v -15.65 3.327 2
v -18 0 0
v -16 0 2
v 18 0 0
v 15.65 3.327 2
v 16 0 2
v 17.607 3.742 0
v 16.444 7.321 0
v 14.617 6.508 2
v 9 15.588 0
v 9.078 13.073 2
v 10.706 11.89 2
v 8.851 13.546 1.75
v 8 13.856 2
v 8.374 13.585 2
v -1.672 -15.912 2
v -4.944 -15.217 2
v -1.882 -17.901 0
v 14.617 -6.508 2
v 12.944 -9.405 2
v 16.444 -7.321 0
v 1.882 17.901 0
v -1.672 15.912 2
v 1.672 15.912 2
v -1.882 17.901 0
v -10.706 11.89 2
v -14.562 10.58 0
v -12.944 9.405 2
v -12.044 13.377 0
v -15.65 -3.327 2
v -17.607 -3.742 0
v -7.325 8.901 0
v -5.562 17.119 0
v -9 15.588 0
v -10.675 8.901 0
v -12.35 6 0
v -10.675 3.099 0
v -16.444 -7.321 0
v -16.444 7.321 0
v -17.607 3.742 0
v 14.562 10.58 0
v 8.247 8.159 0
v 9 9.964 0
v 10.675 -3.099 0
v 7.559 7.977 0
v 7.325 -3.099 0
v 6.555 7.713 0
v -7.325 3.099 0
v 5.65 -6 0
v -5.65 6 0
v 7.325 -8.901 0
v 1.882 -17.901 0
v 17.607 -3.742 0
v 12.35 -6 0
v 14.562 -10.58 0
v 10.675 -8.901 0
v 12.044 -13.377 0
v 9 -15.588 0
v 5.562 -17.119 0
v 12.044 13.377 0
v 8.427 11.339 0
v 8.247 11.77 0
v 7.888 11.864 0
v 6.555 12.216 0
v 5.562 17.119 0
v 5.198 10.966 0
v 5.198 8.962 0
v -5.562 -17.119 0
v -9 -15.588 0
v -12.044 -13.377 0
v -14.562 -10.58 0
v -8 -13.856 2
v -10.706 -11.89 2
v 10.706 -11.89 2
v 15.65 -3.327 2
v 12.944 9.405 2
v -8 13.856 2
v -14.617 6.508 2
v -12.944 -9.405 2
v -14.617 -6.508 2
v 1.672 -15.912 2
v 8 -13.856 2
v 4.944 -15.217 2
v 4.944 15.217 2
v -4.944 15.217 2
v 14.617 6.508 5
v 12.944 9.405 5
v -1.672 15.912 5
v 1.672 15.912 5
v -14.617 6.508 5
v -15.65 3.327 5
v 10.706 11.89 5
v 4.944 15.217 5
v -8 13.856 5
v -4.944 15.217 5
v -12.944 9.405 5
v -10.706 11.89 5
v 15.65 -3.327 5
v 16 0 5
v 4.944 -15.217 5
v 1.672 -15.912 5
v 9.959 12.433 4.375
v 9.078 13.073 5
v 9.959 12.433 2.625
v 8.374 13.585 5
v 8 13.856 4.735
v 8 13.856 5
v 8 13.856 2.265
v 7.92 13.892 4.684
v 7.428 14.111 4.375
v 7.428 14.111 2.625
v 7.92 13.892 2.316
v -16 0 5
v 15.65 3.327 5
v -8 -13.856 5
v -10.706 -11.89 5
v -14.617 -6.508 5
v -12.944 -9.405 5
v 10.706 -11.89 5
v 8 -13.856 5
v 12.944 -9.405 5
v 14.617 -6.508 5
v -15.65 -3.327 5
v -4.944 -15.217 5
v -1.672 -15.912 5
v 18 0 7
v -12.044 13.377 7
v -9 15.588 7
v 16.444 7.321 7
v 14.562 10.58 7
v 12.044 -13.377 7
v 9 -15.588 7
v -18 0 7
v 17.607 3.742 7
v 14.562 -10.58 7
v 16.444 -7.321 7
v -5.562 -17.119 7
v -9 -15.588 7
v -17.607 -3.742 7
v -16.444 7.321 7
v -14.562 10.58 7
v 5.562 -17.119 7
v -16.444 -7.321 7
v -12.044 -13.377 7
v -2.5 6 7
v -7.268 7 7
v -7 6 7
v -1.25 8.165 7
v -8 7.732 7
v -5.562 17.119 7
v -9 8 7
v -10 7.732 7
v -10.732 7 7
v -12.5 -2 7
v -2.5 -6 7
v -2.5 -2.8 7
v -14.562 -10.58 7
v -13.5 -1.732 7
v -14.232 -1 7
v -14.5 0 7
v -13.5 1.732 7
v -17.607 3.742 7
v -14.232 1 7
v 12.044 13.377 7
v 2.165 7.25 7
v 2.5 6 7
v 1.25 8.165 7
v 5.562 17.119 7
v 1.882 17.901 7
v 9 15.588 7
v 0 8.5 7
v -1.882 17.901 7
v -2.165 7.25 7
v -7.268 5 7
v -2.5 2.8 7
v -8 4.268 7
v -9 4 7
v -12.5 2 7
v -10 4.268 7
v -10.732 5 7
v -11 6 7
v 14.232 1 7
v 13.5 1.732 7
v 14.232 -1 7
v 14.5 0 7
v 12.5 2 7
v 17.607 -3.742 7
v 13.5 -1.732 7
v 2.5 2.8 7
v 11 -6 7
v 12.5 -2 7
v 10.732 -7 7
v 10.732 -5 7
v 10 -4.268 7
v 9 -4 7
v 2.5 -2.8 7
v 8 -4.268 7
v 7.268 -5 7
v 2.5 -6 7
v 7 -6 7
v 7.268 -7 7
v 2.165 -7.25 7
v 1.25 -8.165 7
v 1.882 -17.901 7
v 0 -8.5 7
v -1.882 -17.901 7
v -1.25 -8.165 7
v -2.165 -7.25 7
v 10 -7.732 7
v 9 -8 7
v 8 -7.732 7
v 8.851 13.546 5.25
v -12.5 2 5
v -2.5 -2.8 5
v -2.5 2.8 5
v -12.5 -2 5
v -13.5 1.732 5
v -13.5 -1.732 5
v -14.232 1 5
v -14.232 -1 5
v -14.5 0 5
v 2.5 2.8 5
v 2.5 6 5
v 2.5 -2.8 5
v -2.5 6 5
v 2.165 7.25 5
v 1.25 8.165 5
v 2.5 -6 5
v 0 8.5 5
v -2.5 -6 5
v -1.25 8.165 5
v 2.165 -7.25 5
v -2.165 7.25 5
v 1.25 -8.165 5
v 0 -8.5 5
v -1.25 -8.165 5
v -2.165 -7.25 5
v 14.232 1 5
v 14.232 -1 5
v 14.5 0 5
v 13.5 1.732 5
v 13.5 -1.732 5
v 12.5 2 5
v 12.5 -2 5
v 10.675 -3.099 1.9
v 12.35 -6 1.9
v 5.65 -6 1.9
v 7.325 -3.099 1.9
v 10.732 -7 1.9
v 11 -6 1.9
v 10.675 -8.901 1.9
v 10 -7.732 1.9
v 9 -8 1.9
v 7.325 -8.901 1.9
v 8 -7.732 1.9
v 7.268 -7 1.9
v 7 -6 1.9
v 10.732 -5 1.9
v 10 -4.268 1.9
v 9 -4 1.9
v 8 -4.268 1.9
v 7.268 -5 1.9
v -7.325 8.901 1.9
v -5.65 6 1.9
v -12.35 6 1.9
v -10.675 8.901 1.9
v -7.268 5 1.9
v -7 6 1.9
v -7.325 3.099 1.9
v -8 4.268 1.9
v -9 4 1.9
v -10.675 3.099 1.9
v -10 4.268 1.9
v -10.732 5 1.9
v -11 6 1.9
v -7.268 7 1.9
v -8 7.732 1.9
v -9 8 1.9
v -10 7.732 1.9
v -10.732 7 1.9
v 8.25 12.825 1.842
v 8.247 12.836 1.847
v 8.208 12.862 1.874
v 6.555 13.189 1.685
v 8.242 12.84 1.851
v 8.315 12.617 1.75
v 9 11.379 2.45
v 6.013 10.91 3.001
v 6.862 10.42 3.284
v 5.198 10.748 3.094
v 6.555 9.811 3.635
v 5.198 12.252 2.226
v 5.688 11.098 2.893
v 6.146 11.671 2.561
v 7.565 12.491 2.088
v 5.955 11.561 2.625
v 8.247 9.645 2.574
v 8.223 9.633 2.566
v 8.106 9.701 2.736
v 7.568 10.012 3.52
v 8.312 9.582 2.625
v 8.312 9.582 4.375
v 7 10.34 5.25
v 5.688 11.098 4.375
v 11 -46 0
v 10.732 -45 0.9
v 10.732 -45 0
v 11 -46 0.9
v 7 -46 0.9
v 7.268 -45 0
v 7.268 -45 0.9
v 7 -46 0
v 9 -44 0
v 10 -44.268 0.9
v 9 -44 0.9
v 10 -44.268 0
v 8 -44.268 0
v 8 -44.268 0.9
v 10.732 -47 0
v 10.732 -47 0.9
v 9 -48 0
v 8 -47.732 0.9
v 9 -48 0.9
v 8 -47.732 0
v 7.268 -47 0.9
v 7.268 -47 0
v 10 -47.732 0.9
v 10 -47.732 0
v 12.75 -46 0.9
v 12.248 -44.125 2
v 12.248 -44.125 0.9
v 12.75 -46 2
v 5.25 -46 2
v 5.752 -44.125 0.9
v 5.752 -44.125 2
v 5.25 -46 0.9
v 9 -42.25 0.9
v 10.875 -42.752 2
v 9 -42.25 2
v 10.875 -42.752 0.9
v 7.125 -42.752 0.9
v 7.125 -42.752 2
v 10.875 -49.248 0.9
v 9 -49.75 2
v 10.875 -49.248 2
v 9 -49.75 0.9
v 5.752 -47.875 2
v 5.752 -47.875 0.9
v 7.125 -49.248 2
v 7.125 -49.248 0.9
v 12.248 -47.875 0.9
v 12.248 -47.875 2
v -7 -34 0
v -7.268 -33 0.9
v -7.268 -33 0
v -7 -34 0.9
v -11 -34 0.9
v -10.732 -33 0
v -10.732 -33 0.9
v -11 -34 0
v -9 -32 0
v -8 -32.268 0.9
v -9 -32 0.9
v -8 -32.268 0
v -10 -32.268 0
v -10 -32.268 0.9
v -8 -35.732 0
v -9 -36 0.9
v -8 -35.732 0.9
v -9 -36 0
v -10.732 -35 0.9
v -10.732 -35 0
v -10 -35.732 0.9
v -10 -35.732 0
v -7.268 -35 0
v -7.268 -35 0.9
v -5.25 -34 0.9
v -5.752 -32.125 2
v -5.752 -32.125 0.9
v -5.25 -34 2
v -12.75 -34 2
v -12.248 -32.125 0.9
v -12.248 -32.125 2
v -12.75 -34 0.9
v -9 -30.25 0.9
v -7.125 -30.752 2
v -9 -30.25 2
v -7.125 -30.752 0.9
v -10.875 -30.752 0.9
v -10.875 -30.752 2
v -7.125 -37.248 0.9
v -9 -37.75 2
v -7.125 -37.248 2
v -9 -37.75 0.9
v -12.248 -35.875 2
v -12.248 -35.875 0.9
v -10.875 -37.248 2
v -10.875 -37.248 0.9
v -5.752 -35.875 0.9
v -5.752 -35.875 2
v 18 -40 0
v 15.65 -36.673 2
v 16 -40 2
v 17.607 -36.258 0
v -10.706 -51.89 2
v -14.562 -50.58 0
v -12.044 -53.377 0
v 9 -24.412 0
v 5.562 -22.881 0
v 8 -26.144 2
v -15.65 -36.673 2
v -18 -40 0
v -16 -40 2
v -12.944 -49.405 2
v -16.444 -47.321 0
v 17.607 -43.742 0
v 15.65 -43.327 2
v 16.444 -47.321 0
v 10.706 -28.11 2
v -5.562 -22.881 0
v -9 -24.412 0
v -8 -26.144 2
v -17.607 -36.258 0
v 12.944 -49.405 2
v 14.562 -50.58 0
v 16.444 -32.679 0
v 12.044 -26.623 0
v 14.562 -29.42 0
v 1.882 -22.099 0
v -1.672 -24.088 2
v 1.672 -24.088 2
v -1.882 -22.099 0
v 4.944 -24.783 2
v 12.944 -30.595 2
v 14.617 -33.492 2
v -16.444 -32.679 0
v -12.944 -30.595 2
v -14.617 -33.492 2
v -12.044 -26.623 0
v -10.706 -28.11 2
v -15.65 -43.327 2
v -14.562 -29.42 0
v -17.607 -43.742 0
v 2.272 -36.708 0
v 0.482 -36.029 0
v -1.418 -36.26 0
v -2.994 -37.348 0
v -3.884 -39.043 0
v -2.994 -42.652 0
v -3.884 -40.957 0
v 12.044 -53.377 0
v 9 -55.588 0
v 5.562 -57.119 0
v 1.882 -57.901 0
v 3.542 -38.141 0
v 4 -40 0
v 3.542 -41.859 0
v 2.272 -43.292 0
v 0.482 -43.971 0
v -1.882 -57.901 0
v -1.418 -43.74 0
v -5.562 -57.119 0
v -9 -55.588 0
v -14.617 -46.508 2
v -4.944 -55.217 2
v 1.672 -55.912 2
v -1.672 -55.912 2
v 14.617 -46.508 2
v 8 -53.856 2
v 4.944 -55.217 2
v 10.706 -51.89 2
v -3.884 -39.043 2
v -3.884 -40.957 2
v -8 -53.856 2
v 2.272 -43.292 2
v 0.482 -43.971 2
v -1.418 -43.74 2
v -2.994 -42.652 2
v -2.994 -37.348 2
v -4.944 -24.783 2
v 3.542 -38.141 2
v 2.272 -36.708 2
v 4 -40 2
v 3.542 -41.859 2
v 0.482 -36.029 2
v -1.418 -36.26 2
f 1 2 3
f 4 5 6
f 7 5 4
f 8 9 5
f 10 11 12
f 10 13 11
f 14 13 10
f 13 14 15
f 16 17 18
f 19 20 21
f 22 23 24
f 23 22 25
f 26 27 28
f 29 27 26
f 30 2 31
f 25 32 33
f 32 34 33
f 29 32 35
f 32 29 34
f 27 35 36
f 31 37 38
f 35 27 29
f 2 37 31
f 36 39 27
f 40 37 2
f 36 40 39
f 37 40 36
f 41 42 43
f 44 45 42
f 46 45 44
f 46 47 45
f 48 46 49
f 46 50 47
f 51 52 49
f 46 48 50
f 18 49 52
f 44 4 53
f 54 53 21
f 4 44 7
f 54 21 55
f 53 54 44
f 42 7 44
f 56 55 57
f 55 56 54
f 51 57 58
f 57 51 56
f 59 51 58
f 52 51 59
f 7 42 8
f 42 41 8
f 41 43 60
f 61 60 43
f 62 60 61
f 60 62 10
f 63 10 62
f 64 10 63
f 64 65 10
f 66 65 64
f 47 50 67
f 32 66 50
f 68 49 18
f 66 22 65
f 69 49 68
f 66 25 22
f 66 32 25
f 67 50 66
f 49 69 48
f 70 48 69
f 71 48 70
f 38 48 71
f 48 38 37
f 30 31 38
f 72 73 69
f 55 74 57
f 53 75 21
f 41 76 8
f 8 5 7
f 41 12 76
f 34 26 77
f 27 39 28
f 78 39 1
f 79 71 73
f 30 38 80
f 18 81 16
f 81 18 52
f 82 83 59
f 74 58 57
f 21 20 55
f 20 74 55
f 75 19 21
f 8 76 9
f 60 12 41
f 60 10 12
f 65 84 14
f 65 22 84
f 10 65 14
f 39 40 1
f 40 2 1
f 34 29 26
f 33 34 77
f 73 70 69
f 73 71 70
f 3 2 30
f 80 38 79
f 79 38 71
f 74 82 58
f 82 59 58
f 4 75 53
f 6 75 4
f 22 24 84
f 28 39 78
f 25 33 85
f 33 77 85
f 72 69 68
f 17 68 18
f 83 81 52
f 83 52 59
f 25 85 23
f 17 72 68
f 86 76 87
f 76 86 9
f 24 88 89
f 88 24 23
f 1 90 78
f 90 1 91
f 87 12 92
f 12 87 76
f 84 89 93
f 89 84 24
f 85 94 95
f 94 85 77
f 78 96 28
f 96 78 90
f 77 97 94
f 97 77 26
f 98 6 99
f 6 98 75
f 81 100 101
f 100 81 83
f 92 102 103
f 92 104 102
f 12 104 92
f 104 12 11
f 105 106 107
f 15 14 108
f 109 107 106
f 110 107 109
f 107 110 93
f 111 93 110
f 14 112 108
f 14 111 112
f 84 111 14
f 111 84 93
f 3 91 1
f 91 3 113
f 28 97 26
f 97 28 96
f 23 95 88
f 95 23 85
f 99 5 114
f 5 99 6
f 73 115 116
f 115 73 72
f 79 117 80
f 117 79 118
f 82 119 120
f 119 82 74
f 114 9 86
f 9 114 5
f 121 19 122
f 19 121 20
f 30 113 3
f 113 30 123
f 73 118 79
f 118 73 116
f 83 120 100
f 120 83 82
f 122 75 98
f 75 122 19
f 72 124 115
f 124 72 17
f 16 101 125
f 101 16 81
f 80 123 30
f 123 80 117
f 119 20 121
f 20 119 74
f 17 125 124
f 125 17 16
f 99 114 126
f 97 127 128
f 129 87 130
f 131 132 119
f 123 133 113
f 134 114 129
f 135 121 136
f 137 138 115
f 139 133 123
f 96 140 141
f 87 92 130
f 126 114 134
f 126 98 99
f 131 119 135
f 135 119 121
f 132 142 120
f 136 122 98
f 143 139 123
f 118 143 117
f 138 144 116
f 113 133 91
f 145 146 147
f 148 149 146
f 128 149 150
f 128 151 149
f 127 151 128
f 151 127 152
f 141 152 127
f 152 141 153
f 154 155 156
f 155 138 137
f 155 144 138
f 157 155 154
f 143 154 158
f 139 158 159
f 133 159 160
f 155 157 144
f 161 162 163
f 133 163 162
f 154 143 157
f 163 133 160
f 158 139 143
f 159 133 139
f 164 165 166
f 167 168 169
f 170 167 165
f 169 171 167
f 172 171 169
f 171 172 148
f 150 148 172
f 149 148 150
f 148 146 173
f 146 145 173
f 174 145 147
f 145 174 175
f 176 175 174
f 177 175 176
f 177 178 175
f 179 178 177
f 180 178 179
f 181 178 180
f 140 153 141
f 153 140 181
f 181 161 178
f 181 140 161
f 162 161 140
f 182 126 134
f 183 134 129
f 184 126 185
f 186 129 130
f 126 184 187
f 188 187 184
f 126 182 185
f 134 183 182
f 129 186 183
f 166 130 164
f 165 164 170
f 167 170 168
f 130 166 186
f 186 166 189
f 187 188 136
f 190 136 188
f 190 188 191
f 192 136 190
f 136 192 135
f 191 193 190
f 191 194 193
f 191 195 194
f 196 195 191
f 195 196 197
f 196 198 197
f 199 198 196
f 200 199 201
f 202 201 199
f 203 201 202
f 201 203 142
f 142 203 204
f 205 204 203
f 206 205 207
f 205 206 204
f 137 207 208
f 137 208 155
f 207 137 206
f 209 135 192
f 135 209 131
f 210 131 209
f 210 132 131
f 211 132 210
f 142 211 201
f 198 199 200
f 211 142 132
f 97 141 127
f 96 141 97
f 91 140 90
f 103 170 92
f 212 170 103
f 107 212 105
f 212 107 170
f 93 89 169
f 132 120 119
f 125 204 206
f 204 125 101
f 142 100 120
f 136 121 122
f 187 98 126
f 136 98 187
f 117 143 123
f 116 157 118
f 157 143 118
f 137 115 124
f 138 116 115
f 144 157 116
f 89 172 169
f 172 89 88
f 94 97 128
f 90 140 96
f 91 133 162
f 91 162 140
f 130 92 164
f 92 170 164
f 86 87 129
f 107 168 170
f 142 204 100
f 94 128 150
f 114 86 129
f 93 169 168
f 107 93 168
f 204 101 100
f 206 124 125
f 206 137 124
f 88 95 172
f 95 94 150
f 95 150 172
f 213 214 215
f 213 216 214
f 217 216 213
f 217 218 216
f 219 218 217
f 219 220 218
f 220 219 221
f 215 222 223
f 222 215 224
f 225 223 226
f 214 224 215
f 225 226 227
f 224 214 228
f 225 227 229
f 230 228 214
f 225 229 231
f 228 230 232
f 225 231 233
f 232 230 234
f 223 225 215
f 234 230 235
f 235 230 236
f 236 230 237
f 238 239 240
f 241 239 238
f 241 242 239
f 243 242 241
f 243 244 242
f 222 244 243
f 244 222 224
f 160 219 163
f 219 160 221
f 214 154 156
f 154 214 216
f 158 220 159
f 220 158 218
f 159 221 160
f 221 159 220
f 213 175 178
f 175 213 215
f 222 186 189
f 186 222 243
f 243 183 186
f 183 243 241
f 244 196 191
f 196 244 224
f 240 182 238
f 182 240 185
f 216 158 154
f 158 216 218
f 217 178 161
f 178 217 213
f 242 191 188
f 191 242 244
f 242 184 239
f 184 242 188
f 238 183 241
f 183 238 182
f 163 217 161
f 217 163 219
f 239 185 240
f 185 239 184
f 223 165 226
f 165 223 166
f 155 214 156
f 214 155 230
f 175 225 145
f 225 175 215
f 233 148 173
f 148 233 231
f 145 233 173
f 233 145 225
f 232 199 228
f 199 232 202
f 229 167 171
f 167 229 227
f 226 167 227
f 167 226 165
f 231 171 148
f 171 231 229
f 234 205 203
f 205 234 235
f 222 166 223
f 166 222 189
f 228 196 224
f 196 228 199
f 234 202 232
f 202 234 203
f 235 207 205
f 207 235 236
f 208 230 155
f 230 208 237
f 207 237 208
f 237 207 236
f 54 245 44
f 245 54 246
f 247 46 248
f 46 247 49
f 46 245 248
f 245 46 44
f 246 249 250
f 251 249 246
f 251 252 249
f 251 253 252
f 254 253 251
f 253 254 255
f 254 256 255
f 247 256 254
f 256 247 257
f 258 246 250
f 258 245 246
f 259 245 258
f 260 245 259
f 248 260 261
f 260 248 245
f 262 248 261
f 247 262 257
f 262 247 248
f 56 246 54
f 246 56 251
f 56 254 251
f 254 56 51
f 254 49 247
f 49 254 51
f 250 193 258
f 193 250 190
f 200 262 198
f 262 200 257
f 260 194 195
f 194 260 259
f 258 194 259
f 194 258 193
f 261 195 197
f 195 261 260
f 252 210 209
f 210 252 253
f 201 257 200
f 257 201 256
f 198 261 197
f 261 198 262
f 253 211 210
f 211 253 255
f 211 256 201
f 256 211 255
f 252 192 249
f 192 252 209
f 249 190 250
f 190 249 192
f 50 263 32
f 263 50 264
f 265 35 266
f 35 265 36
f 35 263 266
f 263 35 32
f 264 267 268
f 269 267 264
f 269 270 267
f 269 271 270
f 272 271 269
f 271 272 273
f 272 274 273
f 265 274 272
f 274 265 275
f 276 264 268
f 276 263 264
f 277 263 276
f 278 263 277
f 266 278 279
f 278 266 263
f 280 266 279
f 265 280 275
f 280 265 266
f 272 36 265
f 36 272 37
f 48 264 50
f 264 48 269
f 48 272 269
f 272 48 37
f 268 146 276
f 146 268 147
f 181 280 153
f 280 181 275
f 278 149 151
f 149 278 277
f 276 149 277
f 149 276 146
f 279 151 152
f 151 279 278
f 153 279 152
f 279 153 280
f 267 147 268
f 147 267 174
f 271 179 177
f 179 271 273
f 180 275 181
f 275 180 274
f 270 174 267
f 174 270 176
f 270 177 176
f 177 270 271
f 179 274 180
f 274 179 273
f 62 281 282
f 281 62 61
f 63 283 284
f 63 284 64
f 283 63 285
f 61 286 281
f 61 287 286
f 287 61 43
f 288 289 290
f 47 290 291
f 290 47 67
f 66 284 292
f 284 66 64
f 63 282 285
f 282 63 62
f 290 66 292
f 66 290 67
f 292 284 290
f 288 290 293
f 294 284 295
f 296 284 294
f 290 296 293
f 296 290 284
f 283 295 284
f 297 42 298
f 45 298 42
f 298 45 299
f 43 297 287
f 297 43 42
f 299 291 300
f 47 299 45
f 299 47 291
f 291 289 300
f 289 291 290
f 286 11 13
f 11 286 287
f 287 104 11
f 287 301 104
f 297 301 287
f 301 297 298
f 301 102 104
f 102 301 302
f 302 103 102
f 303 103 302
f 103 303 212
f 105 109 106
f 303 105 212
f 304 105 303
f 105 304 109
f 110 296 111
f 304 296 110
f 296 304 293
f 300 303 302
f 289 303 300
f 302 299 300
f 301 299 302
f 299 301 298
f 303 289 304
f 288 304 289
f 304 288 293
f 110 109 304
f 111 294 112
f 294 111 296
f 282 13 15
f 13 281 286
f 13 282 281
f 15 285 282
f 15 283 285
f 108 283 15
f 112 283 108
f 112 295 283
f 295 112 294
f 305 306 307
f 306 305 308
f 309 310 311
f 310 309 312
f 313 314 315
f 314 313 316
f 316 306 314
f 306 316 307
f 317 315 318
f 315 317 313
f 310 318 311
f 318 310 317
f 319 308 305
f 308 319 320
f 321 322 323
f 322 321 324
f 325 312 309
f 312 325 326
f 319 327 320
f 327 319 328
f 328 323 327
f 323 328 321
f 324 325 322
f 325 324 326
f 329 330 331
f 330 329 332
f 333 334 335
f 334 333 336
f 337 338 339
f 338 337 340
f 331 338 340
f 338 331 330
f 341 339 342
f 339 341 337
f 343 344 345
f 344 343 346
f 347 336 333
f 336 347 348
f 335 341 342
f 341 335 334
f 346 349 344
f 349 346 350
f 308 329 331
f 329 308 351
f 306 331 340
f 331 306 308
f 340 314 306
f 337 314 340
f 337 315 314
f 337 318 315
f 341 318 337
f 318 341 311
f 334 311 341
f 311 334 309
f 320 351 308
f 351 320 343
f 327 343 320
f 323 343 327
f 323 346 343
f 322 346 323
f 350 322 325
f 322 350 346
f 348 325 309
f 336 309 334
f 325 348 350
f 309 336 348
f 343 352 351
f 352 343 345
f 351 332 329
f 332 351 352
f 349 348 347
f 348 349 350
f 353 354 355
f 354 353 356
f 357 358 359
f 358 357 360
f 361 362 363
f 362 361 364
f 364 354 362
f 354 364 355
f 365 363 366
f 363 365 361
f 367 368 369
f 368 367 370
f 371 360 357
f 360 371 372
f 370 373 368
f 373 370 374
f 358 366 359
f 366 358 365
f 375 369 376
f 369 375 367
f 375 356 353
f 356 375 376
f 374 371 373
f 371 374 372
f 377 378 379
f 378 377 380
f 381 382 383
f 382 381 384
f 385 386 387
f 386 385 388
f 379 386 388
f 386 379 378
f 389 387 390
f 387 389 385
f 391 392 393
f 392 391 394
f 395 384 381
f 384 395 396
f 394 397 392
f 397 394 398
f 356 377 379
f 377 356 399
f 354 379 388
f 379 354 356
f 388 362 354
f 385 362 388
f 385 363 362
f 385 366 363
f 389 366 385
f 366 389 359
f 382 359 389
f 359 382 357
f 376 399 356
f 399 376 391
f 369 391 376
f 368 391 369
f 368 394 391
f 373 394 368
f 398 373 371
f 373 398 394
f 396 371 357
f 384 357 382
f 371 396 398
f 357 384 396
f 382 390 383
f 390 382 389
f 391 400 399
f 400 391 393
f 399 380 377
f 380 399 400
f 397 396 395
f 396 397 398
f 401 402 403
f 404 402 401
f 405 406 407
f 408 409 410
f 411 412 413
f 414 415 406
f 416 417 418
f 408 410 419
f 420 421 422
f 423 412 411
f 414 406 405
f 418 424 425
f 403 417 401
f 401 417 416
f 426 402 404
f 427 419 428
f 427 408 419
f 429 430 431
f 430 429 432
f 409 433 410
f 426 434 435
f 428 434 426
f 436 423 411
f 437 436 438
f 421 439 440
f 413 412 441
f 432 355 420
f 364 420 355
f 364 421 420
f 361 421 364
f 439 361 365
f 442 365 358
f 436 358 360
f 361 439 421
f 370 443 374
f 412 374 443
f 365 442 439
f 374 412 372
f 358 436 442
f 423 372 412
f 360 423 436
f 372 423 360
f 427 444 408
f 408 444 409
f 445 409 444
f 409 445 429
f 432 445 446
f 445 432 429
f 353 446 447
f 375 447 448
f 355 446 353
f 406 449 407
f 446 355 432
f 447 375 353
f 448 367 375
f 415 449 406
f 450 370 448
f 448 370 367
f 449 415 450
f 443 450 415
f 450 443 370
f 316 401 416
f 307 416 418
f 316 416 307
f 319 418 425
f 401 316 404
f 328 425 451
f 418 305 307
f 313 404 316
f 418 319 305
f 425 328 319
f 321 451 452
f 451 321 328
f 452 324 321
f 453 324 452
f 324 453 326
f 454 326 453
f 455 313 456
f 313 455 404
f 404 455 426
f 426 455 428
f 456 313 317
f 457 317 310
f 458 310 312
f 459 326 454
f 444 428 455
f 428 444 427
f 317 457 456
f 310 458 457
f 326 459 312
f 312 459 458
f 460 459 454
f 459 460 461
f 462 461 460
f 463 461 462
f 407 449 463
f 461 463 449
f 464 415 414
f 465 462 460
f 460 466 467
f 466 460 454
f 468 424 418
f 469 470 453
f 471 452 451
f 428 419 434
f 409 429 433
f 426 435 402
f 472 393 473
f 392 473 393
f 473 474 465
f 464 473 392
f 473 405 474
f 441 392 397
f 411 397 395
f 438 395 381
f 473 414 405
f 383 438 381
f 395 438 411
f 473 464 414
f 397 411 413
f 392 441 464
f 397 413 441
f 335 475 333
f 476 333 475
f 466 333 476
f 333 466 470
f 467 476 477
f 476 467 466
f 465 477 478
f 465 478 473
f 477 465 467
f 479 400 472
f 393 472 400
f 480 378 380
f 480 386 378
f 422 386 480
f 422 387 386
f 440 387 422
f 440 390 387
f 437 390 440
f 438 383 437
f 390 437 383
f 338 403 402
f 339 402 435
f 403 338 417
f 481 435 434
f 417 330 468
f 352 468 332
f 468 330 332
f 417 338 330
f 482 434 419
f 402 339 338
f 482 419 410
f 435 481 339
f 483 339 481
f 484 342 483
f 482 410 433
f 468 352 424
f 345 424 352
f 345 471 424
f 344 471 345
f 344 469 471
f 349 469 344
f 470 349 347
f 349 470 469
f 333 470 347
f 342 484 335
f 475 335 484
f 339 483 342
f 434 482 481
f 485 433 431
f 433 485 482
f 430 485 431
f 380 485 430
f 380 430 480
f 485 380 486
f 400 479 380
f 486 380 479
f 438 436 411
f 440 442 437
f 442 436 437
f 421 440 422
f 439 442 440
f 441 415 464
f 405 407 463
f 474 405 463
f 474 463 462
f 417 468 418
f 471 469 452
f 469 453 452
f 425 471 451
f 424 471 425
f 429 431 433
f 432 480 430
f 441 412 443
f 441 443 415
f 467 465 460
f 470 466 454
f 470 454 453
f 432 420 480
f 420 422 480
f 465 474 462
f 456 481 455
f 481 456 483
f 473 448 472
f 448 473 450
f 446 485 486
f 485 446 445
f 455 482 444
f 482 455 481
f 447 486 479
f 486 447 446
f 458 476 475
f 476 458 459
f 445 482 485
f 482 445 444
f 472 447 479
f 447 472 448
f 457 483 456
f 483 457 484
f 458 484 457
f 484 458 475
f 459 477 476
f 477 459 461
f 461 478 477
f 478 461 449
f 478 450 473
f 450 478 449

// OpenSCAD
module servo_horn(height=2) // PowerHD HD-1800A - cross horn
{
    quality = 12;
    hull()
    {
        translate( [-12.5,0,0] ) cylinder( d=4, h=height,$fn=quality );
        translate( [0,0,0] ) cylinder( d=6, h=height,$fn=quality );
        translate( [12.5,0,0] ) cylinder( d=4, h=height,$fn=quality );
    }
    hull()
    {
        translate( [0,6,0] ) cylinder( d=5, h=height, $fn=quality );
        translate( [0,-6,0] ) cylinder( d=5, h=height,$fn=quality );
    }
}


// assumptions for control wire displacement = 50mm
// diameter for full motor rotation should be 16mm
// 180 degrees (1/2) rotation should be around d=32mm
//translate([0,-30,0])
difference()
{
    union() // spool
    {
        cylinder( d1=36, d2=32,h=2 );
        translate([0,0,2]) cylinder( d=32,h=3 );
        translate([0,0,5]) cylinder( d1=32,d2=36, h=2 );
    }
    translate([0,0,5]) servo_horn(height=3); //servo
    translate([7,6.5,-6]) rotate([-30,0,0]) cylinder(d=4,h=10);
    translate([12,19,3.5]) rotate([90,90,-30]) cylinder(d=3.5,h=10);
    
    translate( [9,-6,-0.1] )
    {
        cylinder( d=6.7, h=2, $fn=6 ); // 3mm nut
        translate([0,0,-2]) cylinder( d=4, h=15, $fn=12 ); // 3mm screw
    }
    translate( [-9,6,-0.1] )
    {
        cylinder( d=6.7, h=2, $fn=6 ); // 3mm nut
        translate([0,0,-2]) cylinder( d=4, h=15, $fn=12 ); // 3mm screw
    }
}



// lid:

translate([0,-40,0])  // [0,0,15] to be above
difference()
{
    cylinder(d1=36,d2=32,h=2);
    translate( [0,0,-1] ) cylinder(d=8,h=6);
        translate( [9,-6,-0.1] )
        {
            translate([0,0,-2]) cylinder( d=4, h=15, $fn=12 ); // 3mm screw
            translate([0,0,1]) cylinder( d=7.5, h=5, $fn=12 ); // 3mm screw
        }
        translate( [-9,6,-0.1] )
        {
            translate([0,0,-2]) cylinder( d=4, h=15, $fn=12 ); // 3mm screw
            translate([0,0,1]) cylinder( d=7.5, h=5, $fn=12 ); // 3mm screw
        }
}
